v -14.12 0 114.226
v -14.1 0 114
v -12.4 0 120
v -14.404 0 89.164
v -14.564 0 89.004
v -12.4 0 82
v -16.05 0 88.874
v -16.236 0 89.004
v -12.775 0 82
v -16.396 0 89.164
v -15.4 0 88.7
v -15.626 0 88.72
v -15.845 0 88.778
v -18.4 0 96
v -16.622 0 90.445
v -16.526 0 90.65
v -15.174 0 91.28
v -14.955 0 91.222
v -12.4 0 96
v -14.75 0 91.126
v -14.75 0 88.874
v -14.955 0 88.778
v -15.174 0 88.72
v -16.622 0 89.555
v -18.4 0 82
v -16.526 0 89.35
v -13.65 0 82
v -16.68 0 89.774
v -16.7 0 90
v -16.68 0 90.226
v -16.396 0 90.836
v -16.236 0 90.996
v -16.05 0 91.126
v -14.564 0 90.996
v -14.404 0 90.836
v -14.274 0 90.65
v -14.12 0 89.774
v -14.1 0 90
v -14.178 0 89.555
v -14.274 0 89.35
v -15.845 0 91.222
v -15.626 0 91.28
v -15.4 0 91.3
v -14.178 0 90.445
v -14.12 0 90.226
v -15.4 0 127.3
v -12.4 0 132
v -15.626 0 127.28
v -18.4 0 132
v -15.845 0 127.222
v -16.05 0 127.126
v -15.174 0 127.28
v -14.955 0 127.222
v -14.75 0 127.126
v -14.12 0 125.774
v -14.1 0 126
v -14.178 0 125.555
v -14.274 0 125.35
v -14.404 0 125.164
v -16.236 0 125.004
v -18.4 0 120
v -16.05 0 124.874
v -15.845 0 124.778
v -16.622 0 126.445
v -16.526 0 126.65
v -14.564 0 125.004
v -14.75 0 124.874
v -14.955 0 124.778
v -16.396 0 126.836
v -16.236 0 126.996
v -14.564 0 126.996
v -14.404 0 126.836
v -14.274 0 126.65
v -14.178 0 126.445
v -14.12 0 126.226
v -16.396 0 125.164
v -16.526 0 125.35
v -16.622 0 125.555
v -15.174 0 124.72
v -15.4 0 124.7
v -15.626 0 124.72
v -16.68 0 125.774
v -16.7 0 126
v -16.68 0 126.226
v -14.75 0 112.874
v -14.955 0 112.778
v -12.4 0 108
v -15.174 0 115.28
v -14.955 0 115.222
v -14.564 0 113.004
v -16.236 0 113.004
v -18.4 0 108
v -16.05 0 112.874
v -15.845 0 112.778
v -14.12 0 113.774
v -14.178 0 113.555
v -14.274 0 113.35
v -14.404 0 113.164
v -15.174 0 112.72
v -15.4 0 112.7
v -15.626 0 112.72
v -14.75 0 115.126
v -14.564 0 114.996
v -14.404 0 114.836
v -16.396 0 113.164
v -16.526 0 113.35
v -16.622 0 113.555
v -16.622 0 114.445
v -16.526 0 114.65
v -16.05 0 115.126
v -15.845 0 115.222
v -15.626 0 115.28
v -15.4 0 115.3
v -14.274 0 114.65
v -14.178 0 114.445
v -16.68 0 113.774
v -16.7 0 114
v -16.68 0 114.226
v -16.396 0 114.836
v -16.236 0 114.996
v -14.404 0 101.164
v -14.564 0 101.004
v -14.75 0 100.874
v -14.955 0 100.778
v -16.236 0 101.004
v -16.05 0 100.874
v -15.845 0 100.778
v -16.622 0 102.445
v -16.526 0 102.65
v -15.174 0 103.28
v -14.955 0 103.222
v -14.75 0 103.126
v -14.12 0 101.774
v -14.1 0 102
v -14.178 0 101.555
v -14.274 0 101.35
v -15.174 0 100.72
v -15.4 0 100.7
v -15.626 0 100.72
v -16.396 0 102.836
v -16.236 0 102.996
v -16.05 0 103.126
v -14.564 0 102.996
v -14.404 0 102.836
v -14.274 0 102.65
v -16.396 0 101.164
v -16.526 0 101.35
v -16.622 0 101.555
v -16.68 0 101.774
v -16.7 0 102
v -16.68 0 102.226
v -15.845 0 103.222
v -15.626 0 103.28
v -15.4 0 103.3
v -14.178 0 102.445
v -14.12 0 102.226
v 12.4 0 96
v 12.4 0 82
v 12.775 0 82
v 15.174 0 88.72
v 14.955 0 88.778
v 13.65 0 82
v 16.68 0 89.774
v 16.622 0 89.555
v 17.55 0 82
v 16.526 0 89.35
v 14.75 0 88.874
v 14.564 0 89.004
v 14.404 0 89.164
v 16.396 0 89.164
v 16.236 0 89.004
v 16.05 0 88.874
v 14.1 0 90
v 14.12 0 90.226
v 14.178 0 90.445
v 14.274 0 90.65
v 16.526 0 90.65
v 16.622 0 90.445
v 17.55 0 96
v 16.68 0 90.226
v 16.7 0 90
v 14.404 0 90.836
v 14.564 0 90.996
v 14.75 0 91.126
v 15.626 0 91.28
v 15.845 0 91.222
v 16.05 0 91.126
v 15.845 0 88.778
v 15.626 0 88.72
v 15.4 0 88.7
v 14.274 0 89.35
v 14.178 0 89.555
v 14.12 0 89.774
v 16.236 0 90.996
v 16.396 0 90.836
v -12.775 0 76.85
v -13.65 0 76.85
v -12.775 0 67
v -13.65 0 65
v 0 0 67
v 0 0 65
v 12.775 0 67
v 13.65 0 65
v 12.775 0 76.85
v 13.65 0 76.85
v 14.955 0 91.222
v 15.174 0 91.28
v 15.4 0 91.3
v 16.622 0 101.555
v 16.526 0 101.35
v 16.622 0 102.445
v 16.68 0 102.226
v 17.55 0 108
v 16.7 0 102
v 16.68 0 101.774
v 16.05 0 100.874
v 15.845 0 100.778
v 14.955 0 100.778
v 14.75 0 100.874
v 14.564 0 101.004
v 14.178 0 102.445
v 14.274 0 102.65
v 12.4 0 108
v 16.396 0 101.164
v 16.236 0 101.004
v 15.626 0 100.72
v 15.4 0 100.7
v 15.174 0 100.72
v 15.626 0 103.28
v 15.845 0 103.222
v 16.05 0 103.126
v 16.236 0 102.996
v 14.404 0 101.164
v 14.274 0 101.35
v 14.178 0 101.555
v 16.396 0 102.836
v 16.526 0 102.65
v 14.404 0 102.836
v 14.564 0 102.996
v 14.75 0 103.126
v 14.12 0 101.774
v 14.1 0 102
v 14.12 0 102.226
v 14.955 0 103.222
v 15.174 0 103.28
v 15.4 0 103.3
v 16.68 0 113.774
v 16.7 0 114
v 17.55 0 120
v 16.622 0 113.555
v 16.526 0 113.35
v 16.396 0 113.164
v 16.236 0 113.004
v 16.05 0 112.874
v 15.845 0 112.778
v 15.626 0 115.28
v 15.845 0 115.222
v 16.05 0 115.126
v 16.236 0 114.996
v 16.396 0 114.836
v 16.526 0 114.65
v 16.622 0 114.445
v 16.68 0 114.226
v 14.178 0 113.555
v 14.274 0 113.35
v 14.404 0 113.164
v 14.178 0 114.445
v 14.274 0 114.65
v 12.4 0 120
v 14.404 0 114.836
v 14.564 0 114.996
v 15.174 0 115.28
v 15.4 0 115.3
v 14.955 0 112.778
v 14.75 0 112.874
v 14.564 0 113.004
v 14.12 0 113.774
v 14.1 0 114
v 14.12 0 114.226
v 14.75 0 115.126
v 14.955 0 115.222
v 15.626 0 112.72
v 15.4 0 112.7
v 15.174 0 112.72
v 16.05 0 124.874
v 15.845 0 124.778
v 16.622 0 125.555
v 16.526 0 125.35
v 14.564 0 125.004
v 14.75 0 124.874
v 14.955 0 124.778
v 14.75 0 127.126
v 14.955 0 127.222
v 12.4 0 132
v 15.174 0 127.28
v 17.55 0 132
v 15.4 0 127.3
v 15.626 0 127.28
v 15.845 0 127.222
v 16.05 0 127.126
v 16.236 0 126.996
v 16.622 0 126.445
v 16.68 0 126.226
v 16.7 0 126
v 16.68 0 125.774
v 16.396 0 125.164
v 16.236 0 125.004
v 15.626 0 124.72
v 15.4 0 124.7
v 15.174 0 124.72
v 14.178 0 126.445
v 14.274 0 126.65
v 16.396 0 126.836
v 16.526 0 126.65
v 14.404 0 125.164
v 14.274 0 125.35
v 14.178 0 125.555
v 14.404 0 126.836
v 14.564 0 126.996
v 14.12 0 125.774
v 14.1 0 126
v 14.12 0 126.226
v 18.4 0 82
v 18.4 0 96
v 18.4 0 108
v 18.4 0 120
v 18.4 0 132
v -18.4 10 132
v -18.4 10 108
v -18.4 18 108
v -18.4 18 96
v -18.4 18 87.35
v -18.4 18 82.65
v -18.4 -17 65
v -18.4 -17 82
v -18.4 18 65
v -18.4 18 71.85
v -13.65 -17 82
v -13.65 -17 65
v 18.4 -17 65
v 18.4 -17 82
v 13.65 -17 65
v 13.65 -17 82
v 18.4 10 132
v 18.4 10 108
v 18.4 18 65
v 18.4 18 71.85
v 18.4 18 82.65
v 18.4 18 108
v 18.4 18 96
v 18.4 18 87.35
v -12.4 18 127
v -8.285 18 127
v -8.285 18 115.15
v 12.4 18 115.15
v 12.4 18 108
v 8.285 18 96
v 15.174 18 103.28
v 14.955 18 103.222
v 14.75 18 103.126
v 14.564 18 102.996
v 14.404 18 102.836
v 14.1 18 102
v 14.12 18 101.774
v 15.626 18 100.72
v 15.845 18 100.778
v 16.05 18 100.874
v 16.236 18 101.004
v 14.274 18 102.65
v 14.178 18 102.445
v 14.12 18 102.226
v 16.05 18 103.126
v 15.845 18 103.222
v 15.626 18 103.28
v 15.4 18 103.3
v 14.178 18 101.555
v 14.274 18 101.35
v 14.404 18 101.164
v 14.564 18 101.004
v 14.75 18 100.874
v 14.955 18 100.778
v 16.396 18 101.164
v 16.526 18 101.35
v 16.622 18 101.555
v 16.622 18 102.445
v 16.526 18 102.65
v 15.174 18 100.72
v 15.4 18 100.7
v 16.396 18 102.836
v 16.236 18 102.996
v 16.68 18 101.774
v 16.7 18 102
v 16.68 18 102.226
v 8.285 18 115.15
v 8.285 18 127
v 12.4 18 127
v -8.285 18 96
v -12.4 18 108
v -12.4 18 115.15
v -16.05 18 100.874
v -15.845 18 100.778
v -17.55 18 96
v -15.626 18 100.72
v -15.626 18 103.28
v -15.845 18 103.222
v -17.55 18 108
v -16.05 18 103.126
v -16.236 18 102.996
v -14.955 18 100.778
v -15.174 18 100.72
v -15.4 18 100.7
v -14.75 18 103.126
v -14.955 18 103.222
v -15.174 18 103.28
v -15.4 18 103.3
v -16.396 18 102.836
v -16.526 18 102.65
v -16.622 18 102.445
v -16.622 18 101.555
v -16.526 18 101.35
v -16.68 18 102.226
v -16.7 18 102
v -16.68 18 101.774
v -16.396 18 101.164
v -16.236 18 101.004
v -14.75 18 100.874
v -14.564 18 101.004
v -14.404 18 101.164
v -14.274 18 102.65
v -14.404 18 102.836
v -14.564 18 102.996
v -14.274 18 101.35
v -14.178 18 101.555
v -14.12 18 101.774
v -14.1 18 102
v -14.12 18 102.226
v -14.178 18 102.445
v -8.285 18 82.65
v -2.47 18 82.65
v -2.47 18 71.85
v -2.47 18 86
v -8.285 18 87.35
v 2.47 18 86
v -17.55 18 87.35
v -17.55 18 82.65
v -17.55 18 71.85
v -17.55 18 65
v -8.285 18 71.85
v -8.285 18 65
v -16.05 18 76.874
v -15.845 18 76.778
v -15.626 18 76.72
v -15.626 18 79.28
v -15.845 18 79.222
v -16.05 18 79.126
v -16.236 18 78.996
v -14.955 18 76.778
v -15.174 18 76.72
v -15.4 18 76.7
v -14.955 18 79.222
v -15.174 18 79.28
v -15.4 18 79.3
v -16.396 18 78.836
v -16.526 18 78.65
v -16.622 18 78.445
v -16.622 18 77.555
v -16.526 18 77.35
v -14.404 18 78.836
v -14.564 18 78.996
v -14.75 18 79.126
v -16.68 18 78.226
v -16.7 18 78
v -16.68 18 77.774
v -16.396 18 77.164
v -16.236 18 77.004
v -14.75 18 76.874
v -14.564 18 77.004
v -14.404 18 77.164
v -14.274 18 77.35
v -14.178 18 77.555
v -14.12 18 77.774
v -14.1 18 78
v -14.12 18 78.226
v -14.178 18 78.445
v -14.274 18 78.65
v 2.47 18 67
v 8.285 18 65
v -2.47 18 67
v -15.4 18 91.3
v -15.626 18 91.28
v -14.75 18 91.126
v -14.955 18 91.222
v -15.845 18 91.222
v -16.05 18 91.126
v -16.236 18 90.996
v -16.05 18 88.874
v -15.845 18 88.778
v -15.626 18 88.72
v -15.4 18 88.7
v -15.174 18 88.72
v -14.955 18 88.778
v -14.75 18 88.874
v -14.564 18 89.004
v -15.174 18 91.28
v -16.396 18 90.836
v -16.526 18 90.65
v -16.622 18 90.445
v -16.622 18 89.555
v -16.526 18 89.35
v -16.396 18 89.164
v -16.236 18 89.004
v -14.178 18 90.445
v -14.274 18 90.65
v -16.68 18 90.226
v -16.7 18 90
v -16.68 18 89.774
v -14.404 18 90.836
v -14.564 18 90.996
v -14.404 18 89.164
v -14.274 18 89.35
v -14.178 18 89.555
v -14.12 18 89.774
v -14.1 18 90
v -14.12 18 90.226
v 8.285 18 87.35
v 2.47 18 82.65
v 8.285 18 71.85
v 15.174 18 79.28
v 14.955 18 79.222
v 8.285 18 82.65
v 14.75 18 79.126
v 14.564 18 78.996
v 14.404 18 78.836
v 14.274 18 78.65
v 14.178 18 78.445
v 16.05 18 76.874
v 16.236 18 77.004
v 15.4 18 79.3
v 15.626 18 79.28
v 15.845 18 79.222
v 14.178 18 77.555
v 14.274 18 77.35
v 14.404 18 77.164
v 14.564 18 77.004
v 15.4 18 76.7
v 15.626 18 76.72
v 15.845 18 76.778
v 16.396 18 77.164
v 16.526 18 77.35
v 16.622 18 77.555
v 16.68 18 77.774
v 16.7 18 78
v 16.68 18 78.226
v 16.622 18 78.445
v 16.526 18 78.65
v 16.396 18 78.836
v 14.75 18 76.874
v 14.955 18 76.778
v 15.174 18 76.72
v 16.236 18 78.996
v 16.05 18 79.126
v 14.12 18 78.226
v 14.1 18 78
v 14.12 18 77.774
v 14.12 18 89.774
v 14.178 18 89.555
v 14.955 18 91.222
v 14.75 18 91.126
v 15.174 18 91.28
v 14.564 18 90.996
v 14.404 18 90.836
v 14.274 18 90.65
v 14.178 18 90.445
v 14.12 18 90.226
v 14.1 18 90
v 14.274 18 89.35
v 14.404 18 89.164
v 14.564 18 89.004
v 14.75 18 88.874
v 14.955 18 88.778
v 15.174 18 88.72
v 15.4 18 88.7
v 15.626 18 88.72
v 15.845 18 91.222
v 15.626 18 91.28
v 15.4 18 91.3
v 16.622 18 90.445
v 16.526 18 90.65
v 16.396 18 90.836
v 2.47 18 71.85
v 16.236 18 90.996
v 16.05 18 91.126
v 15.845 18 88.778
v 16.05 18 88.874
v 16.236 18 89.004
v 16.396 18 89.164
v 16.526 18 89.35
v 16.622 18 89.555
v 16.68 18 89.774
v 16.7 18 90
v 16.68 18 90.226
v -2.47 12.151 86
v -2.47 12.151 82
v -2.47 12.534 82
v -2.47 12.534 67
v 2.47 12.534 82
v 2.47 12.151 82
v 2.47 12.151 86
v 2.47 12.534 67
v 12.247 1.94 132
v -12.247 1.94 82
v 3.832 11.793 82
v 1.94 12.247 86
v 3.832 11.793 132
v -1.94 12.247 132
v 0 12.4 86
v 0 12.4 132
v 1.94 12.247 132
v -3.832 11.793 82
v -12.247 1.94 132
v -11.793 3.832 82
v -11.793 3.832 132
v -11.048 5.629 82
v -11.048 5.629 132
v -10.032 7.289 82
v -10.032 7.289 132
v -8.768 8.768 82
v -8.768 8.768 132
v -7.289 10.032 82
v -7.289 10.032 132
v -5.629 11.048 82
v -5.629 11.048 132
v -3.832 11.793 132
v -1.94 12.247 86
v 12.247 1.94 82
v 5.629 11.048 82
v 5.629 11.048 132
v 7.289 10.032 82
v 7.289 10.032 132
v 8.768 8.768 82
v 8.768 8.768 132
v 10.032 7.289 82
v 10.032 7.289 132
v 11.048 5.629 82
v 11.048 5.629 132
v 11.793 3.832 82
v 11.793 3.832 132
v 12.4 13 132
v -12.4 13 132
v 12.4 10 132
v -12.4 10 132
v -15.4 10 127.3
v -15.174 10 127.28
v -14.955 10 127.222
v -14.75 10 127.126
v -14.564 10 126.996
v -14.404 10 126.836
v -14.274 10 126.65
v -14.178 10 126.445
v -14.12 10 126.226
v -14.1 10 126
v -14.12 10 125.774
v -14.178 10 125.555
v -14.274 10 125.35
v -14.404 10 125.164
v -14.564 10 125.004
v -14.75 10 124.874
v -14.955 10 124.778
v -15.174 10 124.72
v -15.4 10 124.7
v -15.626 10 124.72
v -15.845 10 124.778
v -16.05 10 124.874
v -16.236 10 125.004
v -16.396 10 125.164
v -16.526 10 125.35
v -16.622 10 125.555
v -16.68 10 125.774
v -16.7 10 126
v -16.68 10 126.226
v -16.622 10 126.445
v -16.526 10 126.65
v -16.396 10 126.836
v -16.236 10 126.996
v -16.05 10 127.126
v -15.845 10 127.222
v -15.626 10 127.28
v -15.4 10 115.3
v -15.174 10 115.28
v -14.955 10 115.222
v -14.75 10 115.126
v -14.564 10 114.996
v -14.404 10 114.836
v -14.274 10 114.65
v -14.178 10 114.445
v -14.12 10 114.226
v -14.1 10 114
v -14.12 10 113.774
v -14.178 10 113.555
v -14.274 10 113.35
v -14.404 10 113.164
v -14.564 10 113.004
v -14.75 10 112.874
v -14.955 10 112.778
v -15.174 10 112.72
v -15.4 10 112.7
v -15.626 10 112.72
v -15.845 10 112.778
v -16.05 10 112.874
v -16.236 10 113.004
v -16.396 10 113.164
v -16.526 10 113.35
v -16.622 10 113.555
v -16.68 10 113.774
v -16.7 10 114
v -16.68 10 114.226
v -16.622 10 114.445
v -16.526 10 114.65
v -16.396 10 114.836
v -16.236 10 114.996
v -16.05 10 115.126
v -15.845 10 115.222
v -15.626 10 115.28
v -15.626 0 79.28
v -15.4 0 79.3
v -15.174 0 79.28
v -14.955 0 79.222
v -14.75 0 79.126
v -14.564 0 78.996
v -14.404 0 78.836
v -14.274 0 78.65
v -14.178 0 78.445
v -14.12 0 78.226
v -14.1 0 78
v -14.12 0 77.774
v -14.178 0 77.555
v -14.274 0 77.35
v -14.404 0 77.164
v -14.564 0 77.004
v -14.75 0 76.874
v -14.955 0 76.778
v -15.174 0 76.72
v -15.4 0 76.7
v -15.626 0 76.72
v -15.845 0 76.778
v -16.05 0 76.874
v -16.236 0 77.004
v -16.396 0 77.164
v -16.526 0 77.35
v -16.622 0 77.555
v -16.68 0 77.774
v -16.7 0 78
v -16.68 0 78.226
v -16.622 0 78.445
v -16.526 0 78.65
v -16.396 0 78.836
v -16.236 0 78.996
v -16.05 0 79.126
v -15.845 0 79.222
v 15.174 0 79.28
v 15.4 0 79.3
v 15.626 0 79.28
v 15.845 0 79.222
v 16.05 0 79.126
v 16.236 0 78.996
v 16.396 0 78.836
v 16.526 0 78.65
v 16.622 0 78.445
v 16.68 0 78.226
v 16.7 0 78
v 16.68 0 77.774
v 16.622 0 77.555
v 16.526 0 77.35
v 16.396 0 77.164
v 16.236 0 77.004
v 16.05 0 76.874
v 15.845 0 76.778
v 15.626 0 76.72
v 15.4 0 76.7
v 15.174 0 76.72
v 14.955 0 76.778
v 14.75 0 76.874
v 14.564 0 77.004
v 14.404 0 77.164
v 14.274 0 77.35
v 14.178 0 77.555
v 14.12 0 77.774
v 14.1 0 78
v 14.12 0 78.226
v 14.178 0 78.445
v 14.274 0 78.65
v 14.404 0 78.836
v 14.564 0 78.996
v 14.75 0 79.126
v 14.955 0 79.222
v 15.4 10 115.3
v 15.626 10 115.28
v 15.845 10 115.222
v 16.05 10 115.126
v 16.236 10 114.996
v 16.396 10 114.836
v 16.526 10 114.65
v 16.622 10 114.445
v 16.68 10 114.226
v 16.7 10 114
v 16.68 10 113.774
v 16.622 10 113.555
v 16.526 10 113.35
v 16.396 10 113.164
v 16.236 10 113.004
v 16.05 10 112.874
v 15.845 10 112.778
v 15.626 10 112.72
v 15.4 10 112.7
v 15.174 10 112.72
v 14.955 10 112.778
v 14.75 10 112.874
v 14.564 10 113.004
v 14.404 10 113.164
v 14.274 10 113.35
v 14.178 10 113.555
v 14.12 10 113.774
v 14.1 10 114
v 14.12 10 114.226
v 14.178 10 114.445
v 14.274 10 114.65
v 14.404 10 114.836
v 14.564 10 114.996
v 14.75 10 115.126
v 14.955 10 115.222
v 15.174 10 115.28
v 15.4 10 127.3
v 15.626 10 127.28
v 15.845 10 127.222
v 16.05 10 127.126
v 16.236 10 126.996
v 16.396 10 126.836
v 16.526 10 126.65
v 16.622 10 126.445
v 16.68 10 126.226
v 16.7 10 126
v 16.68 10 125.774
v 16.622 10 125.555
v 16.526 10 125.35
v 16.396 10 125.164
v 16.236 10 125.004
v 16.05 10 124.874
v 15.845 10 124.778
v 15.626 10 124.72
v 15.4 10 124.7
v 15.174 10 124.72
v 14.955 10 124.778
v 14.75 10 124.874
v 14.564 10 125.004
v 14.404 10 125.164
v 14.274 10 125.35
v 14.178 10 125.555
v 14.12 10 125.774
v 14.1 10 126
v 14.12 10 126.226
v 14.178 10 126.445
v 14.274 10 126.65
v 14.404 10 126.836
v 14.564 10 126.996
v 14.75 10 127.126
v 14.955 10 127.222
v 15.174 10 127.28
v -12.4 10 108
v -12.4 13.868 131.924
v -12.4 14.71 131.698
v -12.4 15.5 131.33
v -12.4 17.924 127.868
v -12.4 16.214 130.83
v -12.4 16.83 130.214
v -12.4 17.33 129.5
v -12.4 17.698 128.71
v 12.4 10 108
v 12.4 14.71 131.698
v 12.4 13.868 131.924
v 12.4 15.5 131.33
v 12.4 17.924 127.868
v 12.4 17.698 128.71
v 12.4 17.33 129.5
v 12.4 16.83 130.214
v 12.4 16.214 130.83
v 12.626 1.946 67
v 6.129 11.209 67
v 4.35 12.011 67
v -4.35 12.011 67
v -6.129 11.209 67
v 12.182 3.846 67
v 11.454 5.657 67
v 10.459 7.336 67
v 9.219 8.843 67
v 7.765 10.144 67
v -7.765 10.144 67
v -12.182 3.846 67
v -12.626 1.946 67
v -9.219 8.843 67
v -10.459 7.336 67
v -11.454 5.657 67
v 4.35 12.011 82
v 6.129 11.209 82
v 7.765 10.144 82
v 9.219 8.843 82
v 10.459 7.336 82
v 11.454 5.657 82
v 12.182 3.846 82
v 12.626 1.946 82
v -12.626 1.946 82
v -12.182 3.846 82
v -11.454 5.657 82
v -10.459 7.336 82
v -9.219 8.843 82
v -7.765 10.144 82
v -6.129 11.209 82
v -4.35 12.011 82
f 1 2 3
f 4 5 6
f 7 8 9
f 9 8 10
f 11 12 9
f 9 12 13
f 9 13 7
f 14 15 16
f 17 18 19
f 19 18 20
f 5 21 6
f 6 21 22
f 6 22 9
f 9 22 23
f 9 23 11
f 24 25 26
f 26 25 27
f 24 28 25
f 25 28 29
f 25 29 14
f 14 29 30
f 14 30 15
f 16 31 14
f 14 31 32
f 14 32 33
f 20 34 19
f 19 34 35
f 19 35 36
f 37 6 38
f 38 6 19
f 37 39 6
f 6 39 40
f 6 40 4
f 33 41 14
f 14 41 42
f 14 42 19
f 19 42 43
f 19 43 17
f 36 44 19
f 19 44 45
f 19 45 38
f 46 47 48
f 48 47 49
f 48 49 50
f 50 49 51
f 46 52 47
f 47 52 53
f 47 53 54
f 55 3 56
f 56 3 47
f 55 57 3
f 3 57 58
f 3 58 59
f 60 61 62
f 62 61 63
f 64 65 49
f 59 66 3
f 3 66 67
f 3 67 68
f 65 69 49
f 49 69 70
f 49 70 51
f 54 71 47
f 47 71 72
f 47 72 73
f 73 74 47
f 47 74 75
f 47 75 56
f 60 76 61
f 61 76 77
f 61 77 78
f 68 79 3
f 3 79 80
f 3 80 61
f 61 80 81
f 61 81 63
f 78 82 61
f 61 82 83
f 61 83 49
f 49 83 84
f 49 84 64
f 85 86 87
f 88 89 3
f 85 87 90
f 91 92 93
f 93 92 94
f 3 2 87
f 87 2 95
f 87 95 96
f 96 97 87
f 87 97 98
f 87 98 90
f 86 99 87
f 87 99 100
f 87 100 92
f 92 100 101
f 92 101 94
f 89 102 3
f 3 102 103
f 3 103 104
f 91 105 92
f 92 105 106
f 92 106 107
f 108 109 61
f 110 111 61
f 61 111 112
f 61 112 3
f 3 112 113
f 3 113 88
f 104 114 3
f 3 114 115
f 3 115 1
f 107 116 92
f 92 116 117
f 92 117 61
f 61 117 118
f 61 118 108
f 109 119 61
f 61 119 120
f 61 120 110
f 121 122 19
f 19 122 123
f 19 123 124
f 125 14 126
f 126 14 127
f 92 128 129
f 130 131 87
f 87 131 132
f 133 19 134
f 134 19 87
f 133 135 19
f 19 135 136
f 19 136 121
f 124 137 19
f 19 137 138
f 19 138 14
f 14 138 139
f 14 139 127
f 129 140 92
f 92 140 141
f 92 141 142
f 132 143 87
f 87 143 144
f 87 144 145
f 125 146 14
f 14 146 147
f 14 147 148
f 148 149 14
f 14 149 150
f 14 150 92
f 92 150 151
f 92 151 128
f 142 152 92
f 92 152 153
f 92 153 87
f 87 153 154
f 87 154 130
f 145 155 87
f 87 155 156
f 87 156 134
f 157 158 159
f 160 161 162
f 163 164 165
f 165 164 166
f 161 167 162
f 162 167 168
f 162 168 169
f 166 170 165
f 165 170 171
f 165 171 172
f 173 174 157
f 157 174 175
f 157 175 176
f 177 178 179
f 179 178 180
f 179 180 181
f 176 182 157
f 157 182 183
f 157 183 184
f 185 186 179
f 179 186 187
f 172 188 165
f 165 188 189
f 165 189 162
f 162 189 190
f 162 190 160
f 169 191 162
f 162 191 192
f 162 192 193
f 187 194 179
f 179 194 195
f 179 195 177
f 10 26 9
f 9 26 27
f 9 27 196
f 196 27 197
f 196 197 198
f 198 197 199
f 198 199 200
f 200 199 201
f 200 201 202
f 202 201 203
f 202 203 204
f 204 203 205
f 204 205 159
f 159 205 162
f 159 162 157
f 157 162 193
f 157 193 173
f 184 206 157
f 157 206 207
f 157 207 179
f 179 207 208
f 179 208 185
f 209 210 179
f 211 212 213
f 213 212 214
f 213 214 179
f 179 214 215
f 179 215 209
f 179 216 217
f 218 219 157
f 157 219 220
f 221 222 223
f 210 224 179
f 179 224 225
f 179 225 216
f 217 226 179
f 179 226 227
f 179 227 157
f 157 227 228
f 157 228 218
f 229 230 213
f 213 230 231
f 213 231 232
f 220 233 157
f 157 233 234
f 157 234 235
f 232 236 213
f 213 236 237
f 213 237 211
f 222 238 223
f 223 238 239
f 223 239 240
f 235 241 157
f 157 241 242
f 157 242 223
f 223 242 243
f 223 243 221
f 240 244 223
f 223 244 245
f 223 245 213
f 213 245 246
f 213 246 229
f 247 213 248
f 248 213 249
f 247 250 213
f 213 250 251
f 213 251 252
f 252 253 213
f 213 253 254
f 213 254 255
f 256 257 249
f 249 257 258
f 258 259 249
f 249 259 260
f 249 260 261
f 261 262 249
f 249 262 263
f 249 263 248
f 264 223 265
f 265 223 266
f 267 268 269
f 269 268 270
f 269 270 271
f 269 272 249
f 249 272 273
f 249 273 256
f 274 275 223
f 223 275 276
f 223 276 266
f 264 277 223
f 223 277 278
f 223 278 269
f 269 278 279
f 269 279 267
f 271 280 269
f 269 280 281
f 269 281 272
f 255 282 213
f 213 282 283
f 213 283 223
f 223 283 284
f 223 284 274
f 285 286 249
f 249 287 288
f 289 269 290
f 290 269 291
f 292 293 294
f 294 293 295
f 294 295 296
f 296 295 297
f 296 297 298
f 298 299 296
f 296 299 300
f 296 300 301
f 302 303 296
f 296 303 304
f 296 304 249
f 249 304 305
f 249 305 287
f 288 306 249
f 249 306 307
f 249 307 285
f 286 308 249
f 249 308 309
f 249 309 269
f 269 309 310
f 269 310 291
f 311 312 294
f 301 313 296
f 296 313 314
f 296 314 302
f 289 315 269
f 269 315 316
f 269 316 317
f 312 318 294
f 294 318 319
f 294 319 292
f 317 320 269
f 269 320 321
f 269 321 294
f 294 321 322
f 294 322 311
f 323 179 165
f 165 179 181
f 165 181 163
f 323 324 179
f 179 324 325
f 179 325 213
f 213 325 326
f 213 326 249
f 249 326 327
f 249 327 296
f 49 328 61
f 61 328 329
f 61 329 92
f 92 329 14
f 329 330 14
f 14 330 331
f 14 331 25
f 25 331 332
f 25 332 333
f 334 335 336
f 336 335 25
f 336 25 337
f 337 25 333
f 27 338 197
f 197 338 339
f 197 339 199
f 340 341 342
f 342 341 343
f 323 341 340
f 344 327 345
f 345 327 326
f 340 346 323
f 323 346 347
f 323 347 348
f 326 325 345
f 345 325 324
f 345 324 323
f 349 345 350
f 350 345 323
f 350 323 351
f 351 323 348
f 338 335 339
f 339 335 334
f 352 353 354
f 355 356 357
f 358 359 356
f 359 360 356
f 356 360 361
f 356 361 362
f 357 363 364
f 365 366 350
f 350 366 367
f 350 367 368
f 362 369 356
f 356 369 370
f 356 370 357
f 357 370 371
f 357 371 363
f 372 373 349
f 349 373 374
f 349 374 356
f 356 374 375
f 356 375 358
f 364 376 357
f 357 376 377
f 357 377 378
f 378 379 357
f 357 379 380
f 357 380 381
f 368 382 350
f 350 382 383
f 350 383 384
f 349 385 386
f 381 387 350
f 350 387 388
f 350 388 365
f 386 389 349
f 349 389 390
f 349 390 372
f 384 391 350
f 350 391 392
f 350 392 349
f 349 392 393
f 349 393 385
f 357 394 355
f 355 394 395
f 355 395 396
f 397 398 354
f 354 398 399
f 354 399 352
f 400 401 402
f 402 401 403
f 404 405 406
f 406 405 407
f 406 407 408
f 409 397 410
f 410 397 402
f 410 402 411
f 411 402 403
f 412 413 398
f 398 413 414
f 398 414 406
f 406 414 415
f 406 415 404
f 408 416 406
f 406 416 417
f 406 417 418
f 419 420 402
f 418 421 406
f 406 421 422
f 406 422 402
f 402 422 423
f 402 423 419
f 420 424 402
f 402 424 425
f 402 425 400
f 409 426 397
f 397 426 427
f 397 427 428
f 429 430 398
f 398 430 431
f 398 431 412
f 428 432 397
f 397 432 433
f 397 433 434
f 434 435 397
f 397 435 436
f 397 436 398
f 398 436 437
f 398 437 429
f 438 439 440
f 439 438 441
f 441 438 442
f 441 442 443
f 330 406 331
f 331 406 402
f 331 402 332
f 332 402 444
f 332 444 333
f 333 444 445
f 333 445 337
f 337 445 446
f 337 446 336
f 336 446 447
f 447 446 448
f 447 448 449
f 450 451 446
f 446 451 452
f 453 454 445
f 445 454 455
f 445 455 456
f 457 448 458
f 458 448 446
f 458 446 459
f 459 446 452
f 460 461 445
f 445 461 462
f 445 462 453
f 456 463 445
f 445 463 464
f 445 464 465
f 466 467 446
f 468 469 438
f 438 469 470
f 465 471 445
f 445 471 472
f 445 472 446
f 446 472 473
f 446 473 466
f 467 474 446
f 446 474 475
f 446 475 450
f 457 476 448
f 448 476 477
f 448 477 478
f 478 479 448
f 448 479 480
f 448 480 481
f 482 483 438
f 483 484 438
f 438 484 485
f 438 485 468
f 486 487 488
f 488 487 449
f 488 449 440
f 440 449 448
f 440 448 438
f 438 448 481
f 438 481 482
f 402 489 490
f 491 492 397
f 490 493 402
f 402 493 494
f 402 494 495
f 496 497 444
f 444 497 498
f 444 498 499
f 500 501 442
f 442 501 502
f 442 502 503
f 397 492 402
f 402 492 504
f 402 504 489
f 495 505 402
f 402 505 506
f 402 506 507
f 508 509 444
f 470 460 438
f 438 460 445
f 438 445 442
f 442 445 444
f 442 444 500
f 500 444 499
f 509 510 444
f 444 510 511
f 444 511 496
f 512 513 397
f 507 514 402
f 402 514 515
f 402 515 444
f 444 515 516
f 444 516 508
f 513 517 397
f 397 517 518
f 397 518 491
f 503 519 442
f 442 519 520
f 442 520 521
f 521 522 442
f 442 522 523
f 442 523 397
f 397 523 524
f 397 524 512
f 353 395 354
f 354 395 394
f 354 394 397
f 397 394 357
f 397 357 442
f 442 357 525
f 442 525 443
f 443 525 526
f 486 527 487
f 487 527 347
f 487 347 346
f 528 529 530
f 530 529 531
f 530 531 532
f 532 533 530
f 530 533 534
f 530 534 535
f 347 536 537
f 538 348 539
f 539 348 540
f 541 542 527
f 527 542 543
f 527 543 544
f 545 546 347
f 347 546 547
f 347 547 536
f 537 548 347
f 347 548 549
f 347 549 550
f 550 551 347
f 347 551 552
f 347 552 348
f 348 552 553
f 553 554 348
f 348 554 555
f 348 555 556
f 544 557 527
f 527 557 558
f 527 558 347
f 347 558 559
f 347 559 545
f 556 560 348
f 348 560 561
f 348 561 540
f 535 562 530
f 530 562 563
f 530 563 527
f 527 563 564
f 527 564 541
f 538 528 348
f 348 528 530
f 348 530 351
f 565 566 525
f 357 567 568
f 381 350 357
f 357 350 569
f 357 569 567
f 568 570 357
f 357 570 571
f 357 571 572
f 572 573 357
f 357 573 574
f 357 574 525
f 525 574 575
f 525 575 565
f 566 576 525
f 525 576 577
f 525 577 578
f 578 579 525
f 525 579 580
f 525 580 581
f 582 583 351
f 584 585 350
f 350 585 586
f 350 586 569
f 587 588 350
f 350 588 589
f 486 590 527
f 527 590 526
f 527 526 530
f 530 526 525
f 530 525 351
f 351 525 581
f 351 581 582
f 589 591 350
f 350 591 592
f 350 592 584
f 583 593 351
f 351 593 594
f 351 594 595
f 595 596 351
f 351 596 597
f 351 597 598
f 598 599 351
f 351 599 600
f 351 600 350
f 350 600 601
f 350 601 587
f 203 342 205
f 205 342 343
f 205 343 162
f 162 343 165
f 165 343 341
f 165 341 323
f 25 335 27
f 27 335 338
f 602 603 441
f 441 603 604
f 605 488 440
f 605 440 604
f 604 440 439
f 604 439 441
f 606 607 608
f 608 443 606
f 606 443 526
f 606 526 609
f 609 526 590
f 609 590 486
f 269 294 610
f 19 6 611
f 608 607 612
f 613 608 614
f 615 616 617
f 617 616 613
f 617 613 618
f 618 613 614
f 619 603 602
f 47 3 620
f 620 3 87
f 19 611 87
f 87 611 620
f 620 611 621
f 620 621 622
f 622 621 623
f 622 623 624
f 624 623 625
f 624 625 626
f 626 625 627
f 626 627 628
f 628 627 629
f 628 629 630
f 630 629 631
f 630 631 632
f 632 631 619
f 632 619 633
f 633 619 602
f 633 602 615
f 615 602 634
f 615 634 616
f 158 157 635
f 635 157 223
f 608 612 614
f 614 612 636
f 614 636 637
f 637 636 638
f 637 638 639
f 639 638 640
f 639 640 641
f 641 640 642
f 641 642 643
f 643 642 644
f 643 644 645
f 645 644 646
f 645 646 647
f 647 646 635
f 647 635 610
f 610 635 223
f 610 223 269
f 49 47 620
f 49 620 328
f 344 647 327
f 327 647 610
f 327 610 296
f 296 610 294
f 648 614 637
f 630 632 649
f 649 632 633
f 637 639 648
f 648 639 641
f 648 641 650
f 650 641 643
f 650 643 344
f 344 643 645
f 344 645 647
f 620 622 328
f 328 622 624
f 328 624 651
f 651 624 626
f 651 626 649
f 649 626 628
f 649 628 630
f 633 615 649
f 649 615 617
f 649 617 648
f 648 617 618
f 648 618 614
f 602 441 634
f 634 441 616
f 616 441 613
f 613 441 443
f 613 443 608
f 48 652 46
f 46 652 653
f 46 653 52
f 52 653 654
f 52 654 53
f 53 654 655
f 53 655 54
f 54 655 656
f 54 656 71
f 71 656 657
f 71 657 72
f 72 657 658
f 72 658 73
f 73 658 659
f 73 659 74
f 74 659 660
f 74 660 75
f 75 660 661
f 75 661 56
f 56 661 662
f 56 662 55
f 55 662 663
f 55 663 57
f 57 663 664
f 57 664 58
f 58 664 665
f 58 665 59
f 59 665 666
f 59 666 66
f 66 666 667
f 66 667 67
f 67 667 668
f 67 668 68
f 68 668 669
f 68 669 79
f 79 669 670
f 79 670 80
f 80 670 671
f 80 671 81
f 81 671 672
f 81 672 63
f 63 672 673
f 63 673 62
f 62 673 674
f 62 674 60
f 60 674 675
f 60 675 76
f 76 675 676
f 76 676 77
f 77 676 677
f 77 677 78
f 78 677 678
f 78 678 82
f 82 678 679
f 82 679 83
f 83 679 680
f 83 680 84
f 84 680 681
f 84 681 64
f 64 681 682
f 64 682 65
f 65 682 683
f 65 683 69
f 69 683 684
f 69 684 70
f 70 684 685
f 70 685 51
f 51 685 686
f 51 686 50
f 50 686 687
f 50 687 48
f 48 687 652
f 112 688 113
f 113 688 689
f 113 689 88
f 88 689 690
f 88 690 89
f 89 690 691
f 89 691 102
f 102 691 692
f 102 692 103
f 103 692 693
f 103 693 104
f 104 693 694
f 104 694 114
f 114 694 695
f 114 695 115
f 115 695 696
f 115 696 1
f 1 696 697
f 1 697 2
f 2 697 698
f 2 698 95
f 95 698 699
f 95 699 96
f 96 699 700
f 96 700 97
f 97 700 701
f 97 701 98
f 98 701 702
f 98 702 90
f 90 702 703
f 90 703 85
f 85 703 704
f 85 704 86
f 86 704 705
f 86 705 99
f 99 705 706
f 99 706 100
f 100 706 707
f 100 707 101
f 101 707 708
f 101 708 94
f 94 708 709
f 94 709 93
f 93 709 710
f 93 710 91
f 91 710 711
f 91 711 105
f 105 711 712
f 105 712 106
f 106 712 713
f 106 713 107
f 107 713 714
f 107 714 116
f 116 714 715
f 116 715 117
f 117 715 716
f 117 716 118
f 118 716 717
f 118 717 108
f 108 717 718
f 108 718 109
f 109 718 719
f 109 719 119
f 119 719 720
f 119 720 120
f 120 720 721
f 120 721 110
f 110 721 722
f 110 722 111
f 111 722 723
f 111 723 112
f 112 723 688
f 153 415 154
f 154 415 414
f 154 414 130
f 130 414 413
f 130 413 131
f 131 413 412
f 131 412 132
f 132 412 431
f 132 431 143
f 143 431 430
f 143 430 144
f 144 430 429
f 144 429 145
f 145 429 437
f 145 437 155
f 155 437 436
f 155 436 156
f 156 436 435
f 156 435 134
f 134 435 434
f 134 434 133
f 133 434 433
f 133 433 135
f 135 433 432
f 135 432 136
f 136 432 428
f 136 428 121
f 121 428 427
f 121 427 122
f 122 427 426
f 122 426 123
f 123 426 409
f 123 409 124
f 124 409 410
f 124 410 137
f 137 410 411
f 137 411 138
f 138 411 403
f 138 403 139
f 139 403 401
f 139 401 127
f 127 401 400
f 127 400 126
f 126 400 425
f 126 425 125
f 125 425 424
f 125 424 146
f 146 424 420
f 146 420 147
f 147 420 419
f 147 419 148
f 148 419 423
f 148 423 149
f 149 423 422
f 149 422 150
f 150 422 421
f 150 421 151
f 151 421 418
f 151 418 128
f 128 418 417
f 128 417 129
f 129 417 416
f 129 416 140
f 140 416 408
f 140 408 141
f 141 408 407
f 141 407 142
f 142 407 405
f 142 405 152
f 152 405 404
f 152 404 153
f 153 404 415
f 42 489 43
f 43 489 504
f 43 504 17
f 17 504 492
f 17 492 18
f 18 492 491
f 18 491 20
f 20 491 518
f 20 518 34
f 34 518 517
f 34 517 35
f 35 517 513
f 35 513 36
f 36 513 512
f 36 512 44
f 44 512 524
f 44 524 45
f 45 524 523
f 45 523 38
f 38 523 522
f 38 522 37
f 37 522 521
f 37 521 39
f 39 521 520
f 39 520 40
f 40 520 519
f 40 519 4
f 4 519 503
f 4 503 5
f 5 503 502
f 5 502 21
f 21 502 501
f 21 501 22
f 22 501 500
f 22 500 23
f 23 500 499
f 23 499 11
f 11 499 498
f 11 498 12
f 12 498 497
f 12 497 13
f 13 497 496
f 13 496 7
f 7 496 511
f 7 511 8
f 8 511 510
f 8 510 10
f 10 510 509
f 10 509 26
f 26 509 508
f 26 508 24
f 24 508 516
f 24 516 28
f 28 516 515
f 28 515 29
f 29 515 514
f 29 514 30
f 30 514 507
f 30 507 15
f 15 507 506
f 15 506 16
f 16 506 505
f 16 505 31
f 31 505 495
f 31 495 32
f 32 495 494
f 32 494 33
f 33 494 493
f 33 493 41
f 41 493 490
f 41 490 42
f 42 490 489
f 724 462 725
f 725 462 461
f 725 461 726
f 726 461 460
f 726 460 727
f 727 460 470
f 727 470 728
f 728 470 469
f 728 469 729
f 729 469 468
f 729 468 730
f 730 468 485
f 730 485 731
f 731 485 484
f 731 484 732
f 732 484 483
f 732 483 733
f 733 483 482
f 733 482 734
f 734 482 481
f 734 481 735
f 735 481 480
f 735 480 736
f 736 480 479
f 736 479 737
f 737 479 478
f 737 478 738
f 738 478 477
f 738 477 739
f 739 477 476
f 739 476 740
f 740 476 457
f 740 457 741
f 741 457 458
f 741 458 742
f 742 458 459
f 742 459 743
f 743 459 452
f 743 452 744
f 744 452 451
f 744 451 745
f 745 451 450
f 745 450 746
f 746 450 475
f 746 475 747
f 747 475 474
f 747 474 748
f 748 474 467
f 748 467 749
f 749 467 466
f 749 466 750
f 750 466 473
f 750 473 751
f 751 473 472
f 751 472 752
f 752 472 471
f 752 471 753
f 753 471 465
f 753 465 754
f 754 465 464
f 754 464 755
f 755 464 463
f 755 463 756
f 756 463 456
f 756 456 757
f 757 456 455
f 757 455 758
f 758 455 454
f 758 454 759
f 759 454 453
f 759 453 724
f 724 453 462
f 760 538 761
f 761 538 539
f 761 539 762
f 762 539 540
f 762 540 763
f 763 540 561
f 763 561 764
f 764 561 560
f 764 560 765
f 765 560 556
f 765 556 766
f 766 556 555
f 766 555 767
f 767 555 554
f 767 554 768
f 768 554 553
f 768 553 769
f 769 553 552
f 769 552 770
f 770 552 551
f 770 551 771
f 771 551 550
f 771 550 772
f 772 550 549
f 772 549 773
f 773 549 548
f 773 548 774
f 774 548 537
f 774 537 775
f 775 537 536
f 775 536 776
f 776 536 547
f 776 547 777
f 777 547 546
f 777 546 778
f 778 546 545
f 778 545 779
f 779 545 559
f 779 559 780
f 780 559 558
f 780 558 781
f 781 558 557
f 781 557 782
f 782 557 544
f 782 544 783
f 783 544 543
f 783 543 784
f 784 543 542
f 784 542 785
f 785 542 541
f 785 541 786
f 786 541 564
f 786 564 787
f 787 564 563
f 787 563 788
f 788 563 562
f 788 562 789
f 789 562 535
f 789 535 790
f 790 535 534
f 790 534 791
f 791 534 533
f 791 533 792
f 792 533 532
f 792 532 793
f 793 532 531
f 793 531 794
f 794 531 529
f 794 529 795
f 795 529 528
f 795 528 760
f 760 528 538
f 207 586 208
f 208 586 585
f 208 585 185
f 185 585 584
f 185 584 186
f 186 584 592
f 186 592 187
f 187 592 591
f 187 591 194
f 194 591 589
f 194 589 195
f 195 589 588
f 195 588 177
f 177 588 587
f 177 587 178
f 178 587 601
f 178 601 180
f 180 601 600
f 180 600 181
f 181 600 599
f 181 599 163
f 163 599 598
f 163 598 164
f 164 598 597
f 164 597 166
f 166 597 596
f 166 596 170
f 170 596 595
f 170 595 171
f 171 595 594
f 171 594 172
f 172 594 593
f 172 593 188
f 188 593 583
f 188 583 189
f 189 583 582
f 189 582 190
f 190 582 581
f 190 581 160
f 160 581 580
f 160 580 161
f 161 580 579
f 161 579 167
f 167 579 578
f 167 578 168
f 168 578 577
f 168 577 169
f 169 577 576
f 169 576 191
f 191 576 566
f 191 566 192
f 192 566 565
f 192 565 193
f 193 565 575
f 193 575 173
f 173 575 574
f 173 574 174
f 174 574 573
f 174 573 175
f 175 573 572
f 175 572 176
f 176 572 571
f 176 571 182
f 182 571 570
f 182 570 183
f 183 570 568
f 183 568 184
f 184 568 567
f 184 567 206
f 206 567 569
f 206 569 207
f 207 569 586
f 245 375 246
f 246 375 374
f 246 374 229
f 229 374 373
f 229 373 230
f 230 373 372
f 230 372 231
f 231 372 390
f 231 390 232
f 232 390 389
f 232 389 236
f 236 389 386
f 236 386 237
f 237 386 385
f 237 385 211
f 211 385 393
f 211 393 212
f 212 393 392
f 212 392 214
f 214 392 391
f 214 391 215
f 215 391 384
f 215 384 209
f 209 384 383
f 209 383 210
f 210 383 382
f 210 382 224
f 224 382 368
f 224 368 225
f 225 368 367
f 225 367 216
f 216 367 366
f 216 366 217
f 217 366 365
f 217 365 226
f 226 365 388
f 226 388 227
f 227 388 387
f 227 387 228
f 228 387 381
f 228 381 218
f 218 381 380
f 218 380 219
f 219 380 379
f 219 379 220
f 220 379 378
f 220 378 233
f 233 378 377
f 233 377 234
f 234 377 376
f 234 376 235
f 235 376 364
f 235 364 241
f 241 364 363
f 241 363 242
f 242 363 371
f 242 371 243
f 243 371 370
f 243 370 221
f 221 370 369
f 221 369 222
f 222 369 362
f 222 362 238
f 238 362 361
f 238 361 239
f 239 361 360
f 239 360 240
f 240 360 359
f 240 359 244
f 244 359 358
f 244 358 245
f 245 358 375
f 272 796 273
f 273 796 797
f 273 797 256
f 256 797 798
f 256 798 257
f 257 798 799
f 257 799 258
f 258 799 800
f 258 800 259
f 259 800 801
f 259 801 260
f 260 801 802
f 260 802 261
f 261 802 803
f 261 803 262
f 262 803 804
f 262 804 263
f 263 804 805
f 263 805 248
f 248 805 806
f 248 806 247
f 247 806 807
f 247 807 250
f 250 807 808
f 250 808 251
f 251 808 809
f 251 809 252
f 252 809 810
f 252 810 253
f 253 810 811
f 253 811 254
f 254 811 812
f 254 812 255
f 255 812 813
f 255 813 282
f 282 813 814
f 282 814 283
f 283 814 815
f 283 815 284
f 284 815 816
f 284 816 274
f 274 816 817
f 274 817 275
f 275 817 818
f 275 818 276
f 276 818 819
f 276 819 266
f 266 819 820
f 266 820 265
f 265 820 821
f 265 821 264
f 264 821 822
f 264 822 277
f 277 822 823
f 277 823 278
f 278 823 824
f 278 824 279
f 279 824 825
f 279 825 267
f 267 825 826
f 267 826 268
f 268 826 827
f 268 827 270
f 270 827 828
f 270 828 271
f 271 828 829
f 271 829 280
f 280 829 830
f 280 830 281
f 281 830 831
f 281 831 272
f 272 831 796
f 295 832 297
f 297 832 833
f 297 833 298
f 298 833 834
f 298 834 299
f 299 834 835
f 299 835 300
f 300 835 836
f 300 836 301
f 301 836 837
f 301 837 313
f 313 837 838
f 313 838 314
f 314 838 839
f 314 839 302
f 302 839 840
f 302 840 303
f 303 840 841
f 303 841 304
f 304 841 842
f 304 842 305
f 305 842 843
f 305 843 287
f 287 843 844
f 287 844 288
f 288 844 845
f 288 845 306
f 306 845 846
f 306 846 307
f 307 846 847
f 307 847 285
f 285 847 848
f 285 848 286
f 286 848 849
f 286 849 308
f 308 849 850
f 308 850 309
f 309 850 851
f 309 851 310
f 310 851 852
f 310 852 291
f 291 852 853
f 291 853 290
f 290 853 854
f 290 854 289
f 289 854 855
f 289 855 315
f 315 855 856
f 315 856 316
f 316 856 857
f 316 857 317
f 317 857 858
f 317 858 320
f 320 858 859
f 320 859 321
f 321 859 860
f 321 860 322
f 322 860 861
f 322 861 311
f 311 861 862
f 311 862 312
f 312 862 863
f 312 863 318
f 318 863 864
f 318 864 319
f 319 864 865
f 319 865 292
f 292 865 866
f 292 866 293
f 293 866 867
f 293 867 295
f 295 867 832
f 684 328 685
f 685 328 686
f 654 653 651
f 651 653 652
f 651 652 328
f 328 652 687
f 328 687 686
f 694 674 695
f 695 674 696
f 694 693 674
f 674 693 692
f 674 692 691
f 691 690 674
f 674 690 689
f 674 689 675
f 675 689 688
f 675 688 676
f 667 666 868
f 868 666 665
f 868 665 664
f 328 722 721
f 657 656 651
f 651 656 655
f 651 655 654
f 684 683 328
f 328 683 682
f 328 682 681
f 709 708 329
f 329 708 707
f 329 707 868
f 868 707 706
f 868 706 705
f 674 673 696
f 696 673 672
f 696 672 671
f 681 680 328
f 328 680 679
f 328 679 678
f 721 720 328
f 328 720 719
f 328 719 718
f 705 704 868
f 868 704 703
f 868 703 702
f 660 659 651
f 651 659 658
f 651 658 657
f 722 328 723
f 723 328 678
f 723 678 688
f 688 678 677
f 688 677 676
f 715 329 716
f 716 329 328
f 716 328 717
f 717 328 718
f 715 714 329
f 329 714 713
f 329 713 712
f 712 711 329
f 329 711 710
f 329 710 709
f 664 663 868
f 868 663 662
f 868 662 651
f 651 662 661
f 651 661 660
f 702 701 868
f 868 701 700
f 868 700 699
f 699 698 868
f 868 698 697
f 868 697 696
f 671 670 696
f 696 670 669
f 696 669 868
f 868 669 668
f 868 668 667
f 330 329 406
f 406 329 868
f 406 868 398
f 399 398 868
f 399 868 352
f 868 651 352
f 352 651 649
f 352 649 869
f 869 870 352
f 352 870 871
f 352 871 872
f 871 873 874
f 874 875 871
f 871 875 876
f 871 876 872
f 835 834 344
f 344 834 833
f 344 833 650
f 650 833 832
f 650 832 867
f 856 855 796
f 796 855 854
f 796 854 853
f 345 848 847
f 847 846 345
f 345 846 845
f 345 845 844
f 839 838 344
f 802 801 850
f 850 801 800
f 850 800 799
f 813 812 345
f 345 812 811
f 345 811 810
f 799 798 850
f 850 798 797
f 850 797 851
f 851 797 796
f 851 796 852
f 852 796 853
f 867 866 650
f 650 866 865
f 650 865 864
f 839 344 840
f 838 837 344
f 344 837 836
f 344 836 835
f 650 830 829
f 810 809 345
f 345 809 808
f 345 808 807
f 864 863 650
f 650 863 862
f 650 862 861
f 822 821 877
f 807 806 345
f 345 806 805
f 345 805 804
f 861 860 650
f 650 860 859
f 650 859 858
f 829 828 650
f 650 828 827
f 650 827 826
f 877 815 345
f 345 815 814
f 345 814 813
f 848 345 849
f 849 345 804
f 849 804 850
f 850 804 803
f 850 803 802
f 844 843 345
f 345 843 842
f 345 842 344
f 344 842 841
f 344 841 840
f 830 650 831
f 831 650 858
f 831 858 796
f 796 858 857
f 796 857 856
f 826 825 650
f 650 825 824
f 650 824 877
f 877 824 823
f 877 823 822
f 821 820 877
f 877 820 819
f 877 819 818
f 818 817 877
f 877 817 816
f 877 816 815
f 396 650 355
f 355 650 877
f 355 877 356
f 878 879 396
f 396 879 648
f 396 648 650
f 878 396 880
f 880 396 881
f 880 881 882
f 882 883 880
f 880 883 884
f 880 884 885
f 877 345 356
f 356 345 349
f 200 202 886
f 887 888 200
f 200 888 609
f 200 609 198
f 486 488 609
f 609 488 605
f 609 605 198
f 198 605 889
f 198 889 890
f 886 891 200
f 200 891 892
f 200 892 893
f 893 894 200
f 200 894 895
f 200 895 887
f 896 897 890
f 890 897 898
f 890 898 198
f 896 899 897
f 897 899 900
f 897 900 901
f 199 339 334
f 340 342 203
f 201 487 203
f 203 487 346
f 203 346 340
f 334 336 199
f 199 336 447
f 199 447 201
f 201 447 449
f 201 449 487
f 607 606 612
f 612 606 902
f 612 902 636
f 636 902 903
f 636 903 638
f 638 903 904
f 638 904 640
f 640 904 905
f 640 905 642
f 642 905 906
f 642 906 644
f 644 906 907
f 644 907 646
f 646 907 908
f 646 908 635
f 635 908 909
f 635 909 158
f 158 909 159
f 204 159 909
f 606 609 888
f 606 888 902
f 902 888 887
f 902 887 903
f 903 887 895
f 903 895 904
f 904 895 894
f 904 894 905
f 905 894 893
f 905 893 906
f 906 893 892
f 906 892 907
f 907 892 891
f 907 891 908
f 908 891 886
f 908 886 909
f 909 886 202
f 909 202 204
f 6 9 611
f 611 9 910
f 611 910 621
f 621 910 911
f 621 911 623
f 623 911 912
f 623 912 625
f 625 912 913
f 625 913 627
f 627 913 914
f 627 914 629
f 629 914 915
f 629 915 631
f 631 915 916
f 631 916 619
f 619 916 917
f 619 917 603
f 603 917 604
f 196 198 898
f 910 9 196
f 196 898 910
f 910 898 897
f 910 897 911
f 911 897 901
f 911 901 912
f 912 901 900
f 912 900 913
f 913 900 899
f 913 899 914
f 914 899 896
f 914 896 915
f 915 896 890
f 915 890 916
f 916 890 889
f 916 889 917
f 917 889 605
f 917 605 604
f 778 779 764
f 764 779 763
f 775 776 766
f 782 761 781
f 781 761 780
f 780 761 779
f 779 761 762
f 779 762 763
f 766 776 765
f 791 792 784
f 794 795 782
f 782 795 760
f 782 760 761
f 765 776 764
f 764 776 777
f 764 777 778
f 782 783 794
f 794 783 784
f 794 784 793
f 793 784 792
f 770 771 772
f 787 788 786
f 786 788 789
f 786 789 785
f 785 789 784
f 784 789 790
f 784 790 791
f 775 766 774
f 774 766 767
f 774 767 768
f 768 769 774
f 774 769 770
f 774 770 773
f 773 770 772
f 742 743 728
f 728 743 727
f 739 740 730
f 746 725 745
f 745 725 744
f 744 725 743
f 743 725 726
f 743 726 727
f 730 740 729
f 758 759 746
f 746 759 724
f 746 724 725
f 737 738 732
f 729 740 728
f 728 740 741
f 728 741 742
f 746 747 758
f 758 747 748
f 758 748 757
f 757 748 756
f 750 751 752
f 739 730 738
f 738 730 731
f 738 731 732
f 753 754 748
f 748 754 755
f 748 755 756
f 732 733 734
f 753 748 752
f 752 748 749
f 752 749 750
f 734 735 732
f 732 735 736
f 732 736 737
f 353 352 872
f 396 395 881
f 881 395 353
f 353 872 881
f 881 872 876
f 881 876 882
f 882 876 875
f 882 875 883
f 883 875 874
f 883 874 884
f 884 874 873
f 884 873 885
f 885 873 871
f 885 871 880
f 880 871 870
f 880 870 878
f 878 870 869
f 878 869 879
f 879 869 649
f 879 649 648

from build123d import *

# Parameters (mm, degrees)
BOSS_EXTRU_1_DEPTH       = 132
ESQUISSE3_W              = 4.94012132
ESQUISSE3_H              = 40
ENL_V_MAT_EXTRU_2_DEPTH  = 9
ESQUISSE4_R              = 1.3
ENL_V_MAT_EXTRU_3_DEPTH  = 18
ESQUISSE5_W              = 6
ESQUISSE5_H              = 24
ENL_V_MAT_EXTRU_4_DEPTH  = 8
BOSS_EXTRU_2_REACH       = 38.8
ESQUISSE7_W              = 2
ESQUISSE7_H              = 18
ENL_V_MAT_EXTRU_5_DEPTH  = 15
ENL_V_MAT_EXTRU_6_DEPTH  = 15
ESQUISSE10_W             = 5.625
ESQUISSE10_H             = 32
BOSS_EXTRU_3_DEPTH       = 17
ESQUISSE14_W             = 11.349962924
ESQUISSE14_H             = 7.588006138
BOSS_EXTRU_5_DEPTH       = 6
ESQUISSE16_W             = 13.258712606
ESQUISSE16_H             = 4.272246905
ENL_V_MAT_EXTRU_7_DEPTH  = 11
ESQUISSE17_W             = 15.613345165
ESQUISSE17_H             = 5.100882875
BOSS_EXTRU_6_DEPTH       = 11
BOSS_EXTRU_6_DEPTH_BACK  = 11
ESQUISSE11_R             = 1.85
ESQUISSE11_R_2           = 1.3
ESQUISSE11_R_3           = 2.916438904
ENL_V_MAT_EXTRU_8_DEPTH  = 8
ESQUISSE18_W             = 9.677736186
ESQUISSE18_H             = 8.253244783
ENL_V_MAT_EXTRU_9_DEPTH  = 10
CONG_2_R                 = 5
ESQUISSE20_W             = 27.3
ESQUISSE20_H             = 40.032665724
ENL_V_MAT_EXTRU_11_DEPTH = 22
ESQUISSE22_R             = 2.780350547
ENL_V_MAT_EXTRU_12_DEPTH = 33
ENL_V_MAT_EXTRU_13_DEPTH = 23
ESQUISSE24_W             = 101.568694303
ESQUISSE24_H             = 64.896510992
ENL_V_MAT_EXTRU_14_DEPTH = 80


with BuildPart() as part:
    # Esquisse1 → Boss.-Extru.1 (new body)
    with BuildSketch(Plane.XY):
        with BuildLine():
            Line((-12.4, 0), (-18.4, 0))
            Line((-18.4, 0), (-18.4, 18))
            Line((-18.4, 18), (18.4, 18))
            Line((18.4, 18), (18.4, 0))
            Line((18.4, 0), (12.4, 0))
            ThreePointArc((12.4, 0), (0, 12.4), (-12.4, 0))
        make_face()
    extrude(amount=BOSS_EXTRU_1_DEPTH)

    # Esquisse3 → Enlèv. mat.-Extru.2 (cut)
    with BuildSketch(Plane.XZ.offset(-18)):
        with Locations((0, 66)):
            Rectangle(ESQUISSE3_W, ESQUISSE3_H)
    extrude(amount=ENL_V_MAT_EXTRU_2_DEPTH, mode=Mode.SUBTRACT)

    # Esquisse4 → Enlèv. mat.-Extru.3 (cut)
    with BuildSketch(Plane(origin=(0, 18, 0), x_dir=(1, 0, 0), z_dir=(0, 1, 0))):
        with Locations((15.4, -6)):
            Circle(ESQUISSE4_R)
        with Locations((15.4, -18)):
            Circle(ESQUISSE4_R)
        with Locations((-15.4, -6)):
            Circle(ESQUISSE4_R)
        with Locations((-15.4, -18)):
            Circle(ESQUISSE4_R)
        with Locations((15.4, -30)):
            Circle(ESQUISSE4_R)
        with Locations((-15.4, -30)):
            Circle(ESQUISSE4_R)
        with Locations((15.4, -42)):
            Circle(ESQUISSE4_R)
        with Locations((-15.4, -42)):
            Circle(ESQUISSE4_R)
        with Locations((-15.4, -126)):
            Circle(ESQUISSE4_R)
        with Locations((-15.4, -114)):
            Circle(ESQUISSE4_R)
        with Locations((-15.4, -102)):
            Circle(ESQUISSE4_R)
        with Locations((-15.4, -90)):
            Circle(ESQUISSE4_R)
        with Locations((-15.4, -78)):
            Circle(ESQUISSE4_R)
        with Locations((15.4, -78)):
            Circle(ESQUISSE4_R)
        with Locations((15.4, -90)):
            Circle(ESQUISSE4_R)
        with Locations((15.4, -102)):
            Circle(ESQUISSE4_R)
        with Locations((15.4, -114)):
            Circle(ESQUISSE4_R)
        with Locations((15.4, -126)):
            Circle(ESQUISSE4_R)
    extrude(amount=-ENL_V_MAT_EXTRU_3_DEPTH, mode=Mode.SUBTRACT)

    # Esquisse5 → Enlèv. mat.-Extru.4 (cut)
    with BuildSketch(Plane(origin=(0, 18, 0), x_dir=(1, 0, 0), z_dir=(0, 1, 0))):
        with Locations((15.4, -12)):
            Rectangle(ESQUISSE5_W, ESQUISSE5_H)
        with Locations((-15.4, -120)):
            Rectangle(ESQUISSE5_W, ESQUISSE5_H)
        with Locations((-15.4, -12)):
            Rectangle(ESQUISSE5_W, ESQUISSE5_H)
        with Locations((15.4, -120)):
            Rectangle(ESQUISSE5_W, ESQUISSE5_H)
    extrude(amount=-ENL_V_MAT_EXTRU_4_DEPTH, mode=Mode.SUBTRACT)

    # Esquisse7 → Boss.-Extru.2 (add, up to next)
    with BuildSketch(Plane.ZY.offset(18.4), mode=Mode.PRIVATE) as boss_extru_2_sk1:
        with Locations((66, 9)):
            Rectangle(ESQUISSE7_W, ESQUISSE7_H)
    boss_extru_2_tool1 = extrude(boss_extru_2_sk1.sketch, amount=-BOSS_EXTRU_2_REACH, mode=Mode.PRIVATE) - part.part
    add(boss_extru_2_tool1.solids().sort_by_distance((-18.4, 9, 66))[0])

    # Esquisse8 → Enlèv. mat.-Extru.5 (cut)
    with BuildSketch(Plane(origin=(0, 0, 65), x_dir=(-1, 0, 0), z_dir=(0, 0, -1))):
        with BuildLine():
            Line((12.775, 0), (-12.775, 0))
            ThreePointArc((-12.775, 0), (0, 12.775), (12.775, 0))
        make_face()
    extrude(amount=ENL_V_MAT_EXTRU_5_DEPTH, mode=Mode.SUBTRACT)

    # Esquisse9 → Enlèv. mat.-Extru.6 (cut)
    with BuildSketch(Plane.XY.offset(67)):
        with BuildLine():
            Line((12.775, 0), (-12.775, 0))
            ThreePointArc((-12.775, 0), (0, 12.775), (12.775, 0))
        make_face()
    extrude(amount=ENL_V_MAT_EXTRU_6_DEPTH, mode=Mode.SUBTRACT)

    # Esquisse10 → Boss.-Extru.3 (add)
    with BuildSketch(Plane.XZ):
        with Locations((15.5875, 66)):
            Rectangle(ESQUISSE10_W, ESQUISSE10_H)
        with Locations((-15.5875, 66)):
            Rectangle(ESQUISSE10_W, ESQUISSE10_H)
    extrude(amount=BOSS_EXTRU_3_DEPTH)

    # Esquisse14 → Boss.-Extru.5 (add)
    with BuildSketch(Plane(origin=(18.4, 0, 0), x_dir=(0, 0, -1), z_dir=(1, 0, 0))):
        with Locations((-50.7944077, 14.205996931)):
            Rectangle(ESQUISSE14_W, ESQUISSE14_H)
    extrude(amount=BOSS_EXTRU_5_DEPTH)

    # Esquisse16 → Enlèv. mat.-Extru.7 (cut)
    with BuildSketch(Plane(origin=(24.4, 0, 0), x_dir=(0, 0, -1), z_dir=(1, 0, 0))):
        with Locations((-50.566594151, 10.91391733)):
            Rectangle(ESQUISSE16_W, ESQUISSE16_H)
    extrude(amount=-ENL_V_MAT_EXTRU_7_DEPTH, mode=Mode.SUBTRACT)

    # Esquisse17 → Boss.-Extru.6 (add, two sides)
    with BuildSketch(Plane(origin=(18.4, 0, 0), x_dir=(0, 0, -1), z_dir=(1, 0, 0))) as boss_extru_6_sk:
        with Locations((-21.308135783, 15.449558563)):
            Rectangle(ESQUISSE17_W, ESQUISSE17_H)
    extrude(amount=BOSS_EXTRU_6_DEPTH)
    extrude(boss_extru_6_sk.sketch, amount=-BOSS_EXTRU_6_DEPTH_BACK)

    # Esquisse11 → Enlèv. mat.-Extru.8 (cut)
    with BuildSketch(Plane(origin=(0, 18, 0), x_dir=(1, 0, 0), z_dir=(0, 1, 0))):
        with Locations((24.22, -102)):
            Circle(ESQUISSE11_R)
        with Locations((19.13, -51)):
            Circle(ESQUISSE11_R)
        with Locations((24.22, -20.6)):
            Circle(ESQUISSE11_R)
        with Locations((-8.37, -51)):
            Circle(ESQUISSE11_R)
        with Locations((15.4, -6)):
            Circle(ESQUISSE11_R_2)
        with Locations((15.4, -18)):
            Circle(ESQUISSE11_R_3)
        with Locations((-23.98, -101)):
            Circle(ESQUISSE11_R)
        with Locations((-23.98, -28)):
            Circle(ESQUISSE11_R)
    extrude(amount=-ENL_V_MAT_EXTRU_8_DEPTH, mode=Mode.SUBTRACT)

    # Esquisse18 → Enlèv. mat.-Extru.9 (cut)
    with BuildSketch(Plane(origin=(-2.47006066, 0, 0), x_dir=(0, 0, -1), z_dir=(1, 0, 0))):
        with Locations((-50.900131157, 9.01339788)):
            Rectangle(ESQUISSE18_W, ESQUISSE18_H)
    extrude(amount=-ENL_V_MAT_EXTRU_9_DEPTH, mode=Mode.SUBTRACT)

    # Congé2
    cong_2_edges = [part.edges().sort_by_distance(p)[0] for p in [
        (0, 18, 0),
        (0, 18, 132),
    ]]
    fillet(cong_2_edges, radius=CONG_2_R)

    # Esquisse20 → Enlèv. mat.-Extru.11 (cut)
    with BuildSketch(Plane.XZ):
        with Locations((0, 66)):
            Rectangle(ESQUISSE20_W, ESQUISSE20_H)
    extrude(amount=ENL_V_MAT_EXTRU_11_DEPTH, mode=Mode.SUBTRACT)

    # Esquisse22 → Enlèv. mat.-Extru.12 (cut)
    with BuildSketch(Plane.XZ.offset(-13.050040782)):
        with Locations((19.13, 51)):
            Circle(ESQUISSE22_R)
    extrude(amount=ENL_V_MAT_EXTRU_12_DEPTH, mode=Mode.SUBTRACT)

    # Esquisse23 → Enlèv. mat.-Extru.13 (cut)
    with BuildSketch(Plane.XZ.offset(-13.140020271)):
        Polygon((-10.962659815, 54.736061467), (-30.574521602, 60.209177611), (-30.574521602, 54.651975737), (-10.962659815, 50.396101529), align=None)
    extrude(amount=ENL_V_MAT_EXTRU_13_DEPTH, mode=Mode.SUBTRACT)

    # Esquisse24 → Enlèv. mat.-Extru.14 (cut)
    with BuildSketch(Plane(origin=(0, 0, 65), x_dir=(-1, 0, 0), z_dir=(0, 0, -1))):
        with Locations((-4.820186709, 5.897951476)):
            Rectangle(ESQUISSE24_W, ESQUISSE24_H)
    extrude(amount=ENL_V_MAT_EXTRU_14_DEPTH, mode=Mode.SUBTRACT)


solid = part.part
